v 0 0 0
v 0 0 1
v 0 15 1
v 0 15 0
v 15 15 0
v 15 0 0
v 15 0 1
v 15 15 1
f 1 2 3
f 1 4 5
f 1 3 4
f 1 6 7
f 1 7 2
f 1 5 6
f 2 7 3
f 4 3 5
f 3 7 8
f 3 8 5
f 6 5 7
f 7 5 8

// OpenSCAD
/* Warning, this is a very basic generator with a lot of approximation 
input data : [FCBGA, 2TC, 15x15mm, 196, , A, C04-25015A]
generated by com.zoubworld.electronics.cad.model3d.Basic
Date : Sun Feb 15 10:50:49 CET 2026
*/

//body
color("black")
translate([0,0,0])
cube([15.0,15.0,1.0], center=false);
